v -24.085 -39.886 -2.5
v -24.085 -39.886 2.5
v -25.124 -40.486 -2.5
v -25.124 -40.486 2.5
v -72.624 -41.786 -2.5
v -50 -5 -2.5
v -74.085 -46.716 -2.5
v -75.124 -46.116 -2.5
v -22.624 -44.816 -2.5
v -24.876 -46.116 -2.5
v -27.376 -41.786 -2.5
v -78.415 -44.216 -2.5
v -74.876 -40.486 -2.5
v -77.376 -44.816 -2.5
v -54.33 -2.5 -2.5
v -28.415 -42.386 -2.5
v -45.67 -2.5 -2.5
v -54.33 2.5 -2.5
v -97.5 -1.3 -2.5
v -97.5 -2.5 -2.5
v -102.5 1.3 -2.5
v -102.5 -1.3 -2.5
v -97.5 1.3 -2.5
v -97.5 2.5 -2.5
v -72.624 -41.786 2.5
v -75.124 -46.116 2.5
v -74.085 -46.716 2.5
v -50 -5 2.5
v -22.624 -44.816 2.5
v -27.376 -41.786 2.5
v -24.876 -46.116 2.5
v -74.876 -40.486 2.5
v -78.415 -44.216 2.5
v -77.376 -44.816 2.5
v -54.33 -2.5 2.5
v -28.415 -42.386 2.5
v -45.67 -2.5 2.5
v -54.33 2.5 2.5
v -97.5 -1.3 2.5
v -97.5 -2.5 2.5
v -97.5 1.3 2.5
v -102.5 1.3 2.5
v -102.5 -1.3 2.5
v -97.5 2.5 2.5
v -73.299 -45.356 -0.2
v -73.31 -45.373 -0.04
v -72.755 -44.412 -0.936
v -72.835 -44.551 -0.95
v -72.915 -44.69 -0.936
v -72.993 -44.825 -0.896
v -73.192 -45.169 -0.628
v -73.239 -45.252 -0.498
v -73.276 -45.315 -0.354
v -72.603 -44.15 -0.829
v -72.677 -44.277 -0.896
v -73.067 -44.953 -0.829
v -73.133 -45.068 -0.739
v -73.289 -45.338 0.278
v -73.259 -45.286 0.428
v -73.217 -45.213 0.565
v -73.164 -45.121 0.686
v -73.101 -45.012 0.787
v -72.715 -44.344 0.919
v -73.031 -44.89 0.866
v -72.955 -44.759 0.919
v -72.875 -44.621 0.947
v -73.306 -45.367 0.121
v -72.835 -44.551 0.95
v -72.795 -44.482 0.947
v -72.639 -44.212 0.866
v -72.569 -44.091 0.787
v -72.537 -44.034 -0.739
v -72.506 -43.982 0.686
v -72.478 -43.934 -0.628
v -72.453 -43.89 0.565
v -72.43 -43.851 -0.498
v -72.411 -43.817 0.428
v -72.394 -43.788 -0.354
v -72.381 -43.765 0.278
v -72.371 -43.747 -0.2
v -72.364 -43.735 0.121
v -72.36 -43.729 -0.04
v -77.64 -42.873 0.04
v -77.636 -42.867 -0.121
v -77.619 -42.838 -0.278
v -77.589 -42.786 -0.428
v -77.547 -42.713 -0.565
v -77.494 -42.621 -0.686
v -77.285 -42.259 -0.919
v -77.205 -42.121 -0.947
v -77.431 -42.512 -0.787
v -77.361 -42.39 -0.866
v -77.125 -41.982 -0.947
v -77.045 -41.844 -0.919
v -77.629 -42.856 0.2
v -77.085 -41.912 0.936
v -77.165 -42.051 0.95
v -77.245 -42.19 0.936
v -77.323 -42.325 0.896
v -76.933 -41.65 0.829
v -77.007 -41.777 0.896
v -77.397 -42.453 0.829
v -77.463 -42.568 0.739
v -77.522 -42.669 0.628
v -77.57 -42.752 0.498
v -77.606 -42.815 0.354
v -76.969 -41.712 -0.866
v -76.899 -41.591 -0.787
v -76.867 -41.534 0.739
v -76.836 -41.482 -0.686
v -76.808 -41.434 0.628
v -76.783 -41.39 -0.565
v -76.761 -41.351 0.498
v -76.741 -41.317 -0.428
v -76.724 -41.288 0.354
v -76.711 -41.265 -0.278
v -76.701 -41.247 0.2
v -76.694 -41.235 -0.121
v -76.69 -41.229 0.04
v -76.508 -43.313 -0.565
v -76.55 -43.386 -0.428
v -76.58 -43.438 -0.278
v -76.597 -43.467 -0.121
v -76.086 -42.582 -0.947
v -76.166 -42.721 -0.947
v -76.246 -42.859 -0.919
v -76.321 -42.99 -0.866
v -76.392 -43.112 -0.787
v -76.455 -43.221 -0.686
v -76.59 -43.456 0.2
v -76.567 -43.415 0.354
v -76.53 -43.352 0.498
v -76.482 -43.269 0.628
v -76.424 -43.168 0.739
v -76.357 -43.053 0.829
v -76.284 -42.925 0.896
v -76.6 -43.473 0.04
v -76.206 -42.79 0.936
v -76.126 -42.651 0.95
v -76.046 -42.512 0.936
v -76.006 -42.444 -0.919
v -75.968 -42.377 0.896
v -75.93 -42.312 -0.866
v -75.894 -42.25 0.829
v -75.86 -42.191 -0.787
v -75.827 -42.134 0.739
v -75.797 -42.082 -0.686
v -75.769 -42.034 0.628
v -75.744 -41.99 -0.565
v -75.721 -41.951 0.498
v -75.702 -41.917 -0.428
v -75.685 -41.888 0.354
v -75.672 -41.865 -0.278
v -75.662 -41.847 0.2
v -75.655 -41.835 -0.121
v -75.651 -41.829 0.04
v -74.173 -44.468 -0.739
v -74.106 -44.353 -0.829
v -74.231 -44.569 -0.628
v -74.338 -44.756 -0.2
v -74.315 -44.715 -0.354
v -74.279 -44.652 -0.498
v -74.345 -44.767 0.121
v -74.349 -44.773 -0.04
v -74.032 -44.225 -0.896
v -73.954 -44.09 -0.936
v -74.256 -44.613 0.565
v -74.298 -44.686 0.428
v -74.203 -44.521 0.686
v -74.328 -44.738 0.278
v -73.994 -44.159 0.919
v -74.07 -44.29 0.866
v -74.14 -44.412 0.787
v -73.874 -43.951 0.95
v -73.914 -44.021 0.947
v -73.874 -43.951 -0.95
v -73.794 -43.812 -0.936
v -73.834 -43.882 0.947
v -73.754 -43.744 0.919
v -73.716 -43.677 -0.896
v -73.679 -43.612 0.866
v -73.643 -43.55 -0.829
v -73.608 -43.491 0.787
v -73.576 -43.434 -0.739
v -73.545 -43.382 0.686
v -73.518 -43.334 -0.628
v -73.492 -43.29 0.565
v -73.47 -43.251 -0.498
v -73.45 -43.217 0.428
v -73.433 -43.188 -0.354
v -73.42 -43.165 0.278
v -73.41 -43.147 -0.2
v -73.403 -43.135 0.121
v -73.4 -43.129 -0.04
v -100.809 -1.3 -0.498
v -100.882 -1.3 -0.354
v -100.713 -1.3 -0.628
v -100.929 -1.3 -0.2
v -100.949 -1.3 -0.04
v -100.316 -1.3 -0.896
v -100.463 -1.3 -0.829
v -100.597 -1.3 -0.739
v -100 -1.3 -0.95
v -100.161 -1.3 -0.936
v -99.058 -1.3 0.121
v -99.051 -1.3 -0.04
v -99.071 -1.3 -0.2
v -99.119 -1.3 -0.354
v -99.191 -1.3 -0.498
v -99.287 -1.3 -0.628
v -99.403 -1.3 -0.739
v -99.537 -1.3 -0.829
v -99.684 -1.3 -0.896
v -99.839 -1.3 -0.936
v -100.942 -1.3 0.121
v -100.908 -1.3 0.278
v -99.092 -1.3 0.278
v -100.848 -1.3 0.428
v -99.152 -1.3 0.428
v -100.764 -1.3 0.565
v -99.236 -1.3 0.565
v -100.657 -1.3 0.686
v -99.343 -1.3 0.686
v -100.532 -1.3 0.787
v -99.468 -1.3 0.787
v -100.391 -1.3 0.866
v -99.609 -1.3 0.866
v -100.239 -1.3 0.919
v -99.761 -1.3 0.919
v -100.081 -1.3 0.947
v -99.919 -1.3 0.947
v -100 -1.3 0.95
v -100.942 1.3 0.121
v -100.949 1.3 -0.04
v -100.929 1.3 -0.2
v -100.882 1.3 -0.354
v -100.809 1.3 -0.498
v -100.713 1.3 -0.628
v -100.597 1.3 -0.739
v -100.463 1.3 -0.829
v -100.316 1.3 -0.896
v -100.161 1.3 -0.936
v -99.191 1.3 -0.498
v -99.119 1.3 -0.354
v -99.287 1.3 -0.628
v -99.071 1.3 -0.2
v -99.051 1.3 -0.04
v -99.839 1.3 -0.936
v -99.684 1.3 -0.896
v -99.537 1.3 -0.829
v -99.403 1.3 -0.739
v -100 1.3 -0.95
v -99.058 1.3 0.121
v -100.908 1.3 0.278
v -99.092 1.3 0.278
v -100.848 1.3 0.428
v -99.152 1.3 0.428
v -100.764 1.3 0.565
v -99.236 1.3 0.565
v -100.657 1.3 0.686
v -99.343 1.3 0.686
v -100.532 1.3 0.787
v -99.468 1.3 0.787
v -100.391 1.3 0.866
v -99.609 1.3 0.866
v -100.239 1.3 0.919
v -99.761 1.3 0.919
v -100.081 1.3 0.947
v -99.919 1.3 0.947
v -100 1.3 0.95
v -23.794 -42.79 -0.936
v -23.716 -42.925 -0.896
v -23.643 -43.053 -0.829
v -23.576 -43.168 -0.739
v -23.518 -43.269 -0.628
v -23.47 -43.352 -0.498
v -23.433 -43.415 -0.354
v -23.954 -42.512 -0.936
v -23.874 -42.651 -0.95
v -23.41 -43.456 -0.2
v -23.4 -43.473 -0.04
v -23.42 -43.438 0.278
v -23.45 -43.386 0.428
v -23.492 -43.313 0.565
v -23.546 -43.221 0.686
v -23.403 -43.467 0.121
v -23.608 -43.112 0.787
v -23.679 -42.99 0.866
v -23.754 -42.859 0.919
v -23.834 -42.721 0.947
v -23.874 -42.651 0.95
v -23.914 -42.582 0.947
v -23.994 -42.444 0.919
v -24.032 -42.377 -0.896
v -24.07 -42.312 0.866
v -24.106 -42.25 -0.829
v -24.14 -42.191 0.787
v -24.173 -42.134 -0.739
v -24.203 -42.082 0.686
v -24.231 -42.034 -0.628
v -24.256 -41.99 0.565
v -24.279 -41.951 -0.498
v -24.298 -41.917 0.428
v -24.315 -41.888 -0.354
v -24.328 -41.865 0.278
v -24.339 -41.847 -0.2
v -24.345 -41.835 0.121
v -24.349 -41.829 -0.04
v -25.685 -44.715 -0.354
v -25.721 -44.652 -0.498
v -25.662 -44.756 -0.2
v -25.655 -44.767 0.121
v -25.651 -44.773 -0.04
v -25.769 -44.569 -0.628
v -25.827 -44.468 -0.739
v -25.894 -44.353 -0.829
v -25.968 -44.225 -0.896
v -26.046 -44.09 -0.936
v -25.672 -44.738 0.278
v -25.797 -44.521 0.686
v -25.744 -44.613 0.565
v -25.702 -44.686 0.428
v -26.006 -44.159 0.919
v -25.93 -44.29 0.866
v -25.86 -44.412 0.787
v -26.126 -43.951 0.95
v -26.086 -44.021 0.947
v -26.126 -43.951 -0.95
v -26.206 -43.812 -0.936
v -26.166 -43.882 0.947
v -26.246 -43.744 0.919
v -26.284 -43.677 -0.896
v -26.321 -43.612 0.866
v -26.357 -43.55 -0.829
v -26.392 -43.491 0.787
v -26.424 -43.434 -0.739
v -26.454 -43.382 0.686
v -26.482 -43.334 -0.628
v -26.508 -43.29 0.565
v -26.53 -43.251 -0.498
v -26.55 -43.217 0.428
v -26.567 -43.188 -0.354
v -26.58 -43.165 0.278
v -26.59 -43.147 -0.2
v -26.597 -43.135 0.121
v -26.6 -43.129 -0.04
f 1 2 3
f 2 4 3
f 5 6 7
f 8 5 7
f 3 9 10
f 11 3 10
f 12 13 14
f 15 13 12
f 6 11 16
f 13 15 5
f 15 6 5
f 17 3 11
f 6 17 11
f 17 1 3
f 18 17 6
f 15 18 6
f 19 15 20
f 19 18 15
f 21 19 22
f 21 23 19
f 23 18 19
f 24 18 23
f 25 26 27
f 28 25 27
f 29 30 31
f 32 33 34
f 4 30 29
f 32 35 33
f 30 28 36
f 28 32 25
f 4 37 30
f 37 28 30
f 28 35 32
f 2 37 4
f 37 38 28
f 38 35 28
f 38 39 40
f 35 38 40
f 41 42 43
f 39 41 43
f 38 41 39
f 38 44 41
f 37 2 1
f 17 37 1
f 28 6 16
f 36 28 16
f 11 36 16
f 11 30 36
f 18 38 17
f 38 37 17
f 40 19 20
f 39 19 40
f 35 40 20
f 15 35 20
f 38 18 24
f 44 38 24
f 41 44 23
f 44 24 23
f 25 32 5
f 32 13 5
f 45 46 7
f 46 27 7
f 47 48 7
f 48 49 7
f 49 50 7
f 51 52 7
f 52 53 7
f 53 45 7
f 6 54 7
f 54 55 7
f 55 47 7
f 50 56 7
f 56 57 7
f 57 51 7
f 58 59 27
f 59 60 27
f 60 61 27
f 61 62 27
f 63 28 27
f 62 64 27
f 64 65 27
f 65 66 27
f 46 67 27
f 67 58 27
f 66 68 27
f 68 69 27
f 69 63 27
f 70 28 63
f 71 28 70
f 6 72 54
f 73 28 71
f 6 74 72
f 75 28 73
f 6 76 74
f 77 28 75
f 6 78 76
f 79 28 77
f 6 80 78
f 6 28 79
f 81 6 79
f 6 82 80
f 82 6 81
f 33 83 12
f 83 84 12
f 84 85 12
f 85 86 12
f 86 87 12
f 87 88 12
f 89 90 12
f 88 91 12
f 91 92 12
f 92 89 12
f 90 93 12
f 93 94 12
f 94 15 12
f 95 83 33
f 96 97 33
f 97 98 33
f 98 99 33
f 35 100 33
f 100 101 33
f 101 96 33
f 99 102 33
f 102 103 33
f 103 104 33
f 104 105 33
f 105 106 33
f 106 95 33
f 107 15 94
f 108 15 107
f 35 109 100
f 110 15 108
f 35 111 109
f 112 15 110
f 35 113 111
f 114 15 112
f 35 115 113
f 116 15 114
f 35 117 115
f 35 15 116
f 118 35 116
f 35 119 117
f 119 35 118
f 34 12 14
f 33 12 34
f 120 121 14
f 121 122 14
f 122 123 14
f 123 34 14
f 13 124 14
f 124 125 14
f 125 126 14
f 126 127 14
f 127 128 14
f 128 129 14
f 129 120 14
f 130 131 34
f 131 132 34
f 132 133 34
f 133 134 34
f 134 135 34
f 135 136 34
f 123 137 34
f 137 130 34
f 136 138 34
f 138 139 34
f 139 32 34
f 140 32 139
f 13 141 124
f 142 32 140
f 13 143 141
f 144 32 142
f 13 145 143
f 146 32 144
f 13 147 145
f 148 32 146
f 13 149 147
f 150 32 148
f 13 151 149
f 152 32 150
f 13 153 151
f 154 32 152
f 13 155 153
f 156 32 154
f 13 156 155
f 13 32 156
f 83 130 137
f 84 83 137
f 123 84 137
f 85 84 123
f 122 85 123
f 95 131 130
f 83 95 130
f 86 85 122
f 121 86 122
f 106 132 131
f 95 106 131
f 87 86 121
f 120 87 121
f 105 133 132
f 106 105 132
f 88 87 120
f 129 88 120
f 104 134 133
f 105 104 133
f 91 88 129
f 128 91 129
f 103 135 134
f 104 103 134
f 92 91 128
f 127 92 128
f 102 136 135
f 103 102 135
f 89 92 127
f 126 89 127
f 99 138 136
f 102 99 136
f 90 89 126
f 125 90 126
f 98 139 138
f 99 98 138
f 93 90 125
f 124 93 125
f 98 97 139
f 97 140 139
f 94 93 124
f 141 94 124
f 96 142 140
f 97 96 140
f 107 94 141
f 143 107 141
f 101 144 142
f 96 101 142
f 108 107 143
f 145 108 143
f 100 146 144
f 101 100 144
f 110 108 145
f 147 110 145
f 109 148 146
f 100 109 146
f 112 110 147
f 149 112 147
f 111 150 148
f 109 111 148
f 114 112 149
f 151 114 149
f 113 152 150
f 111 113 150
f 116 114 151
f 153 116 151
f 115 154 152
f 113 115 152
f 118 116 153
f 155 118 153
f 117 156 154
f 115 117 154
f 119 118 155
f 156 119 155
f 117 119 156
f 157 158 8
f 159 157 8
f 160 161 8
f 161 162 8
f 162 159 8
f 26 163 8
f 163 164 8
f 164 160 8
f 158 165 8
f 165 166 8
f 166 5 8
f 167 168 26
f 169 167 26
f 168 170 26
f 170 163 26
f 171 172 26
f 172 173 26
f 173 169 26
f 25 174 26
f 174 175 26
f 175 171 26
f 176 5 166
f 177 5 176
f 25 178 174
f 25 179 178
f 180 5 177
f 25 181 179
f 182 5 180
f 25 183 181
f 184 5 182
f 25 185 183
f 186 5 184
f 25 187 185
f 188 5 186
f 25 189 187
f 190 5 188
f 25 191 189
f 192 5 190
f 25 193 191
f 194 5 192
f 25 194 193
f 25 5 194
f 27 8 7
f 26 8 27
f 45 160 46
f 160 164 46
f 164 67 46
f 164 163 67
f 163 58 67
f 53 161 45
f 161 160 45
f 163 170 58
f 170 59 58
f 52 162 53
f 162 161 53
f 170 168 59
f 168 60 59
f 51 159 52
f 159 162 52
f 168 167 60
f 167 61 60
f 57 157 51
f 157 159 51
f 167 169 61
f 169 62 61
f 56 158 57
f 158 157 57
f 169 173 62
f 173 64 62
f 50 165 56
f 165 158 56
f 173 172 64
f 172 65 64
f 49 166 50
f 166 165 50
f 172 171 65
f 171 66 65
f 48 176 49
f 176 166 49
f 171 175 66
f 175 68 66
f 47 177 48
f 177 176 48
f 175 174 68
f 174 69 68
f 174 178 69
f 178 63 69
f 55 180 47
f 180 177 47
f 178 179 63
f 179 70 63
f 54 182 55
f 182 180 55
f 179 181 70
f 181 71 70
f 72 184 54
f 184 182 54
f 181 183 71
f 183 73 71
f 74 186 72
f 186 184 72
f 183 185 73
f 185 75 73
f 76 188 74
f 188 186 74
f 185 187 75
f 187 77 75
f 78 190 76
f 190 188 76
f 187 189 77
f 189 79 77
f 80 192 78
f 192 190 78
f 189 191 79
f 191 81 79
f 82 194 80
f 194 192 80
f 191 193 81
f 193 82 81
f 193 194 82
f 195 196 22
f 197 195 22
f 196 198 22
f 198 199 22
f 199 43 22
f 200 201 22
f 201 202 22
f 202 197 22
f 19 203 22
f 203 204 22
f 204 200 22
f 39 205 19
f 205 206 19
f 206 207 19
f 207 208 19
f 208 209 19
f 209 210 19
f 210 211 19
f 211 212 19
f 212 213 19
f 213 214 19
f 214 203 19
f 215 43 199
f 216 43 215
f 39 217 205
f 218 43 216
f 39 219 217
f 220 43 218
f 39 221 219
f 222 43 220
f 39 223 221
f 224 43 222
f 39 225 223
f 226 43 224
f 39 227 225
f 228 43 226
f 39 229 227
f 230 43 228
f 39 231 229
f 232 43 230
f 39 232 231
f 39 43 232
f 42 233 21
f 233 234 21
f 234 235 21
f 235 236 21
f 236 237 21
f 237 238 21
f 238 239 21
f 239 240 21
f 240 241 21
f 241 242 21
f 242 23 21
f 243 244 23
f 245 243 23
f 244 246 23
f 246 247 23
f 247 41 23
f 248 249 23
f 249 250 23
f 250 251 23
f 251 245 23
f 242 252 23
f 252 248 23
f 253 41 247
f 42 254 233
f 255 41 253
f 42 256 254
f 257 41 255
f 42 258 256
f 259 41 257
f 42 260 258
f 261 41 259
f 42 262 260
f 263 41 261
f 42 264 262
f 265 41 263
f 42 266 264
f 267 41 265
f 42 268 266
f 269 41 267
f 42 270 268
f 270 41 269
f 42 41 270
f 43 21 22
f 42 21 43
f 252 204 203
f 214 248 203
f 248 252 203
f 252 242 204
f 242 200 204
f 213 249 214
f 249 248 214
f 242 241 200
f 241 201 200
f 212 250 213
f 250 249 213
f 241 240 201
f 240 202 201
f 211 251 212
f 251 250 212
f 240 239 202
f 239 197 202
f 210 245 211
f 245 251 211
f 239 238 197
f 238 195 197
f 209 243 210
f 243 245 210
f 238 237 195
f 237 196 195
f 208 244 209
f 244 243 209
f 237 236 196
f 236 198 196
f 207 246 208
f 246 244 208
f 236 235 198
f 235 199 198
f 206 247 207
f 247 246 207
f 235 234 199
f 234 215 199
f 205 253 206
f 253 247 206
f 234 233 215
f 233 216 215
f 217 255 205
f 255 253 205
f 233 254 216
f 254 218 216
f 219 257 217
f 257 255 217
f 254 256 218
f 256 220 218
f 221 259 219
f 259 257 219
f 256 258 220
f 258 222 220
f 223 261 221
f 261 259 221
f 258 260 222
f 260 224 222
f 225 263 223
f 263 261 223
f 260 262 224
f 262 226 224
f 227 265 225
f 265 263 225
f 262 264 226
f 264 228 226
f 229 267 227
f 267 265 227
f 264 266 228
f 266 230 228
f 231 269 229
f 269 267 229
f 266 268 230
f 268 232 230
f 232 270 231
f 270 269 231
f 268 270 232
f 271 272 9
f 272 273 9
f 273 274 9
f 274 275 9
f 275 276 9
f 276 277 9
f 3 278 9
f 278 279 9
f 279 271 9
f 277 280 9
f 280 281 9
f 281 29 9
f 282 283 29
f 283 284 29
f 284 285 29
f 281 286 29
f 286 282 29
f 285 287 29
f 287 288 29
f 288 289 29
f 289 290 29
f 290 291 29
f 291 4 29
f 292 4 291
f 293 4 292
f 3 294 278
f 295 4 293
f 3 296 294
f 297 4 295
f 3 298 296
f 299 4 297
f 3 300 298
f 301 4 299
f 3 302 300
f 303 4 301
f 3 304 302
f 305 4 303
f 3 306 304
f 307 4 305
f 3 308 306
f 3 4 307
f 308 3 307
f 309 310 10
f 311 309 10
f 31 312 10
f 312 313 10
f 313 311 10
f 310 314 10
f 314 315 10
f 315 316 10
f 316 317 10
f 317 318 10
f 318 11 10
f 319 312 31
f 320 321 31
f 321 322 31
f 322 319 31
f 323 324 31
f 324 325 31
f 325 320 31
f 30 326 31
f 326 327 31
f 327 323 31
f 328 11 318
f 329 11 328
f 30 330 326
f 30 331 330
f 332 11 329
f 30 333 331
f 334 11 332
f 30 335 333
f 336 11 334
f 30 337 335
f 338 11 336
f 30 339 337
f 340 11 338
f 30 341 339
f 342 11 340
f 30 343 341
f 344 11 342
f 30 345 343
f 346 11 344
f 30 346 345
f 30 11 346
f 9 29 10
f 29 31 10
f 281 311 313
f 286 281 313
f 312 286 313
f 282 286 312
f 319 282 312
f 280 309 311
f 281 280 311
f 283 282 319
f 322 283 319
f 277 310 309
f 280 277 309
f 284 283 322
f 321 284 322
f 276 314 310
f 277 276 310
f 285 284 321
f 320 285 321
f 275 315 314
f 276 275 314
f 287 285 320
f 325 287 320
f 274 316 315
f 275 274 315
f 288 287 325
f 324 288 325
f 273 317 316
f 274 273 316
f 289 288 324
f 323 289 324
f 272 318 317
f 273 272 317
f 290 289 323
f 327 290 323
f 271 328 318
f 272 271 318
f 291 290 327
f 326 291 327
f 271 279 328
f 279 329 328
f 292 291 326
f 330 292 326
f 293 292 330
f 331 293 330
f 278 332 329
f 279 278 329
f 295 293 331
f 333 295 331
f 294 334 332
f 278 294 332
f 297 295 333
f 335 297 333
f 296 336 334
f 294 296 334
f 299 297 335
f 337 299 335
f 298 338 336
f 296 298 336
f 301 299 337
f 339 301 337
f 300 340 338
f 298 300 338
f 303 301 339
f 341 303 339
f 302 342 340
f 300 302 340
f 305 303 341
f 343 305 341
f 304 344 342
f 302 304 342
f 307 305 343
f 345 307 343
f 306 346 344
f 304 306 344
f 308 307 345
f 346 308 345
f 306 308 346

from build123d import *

# Parameters (mm, degrees)
SKETCH1_W               = 5
SKETCH1_H               = 5
SKETCH1_R               = 0.95
CENTER_DEPTH            = 1.3
RIGHTSIDE_START         = 1.3
SKETCH1_2_W             = 5
SKETCH1_2_H             = 5
SKETCH1_2_R             = 0.95
RIGHTSIDE_DEPTH         = 1.2
LEFTSIDE_START          = -1.3
SKETCH1_3_W             = 5
SKETCH1_3_H             = 5
SKETCH1_3_R             = 0.95
LEFTSIDE_DEPTH          = 1.2
SKETCH3_W               = 5
SKETCH3_H               = 5
BOSS_EXTRUDE4_DEPTH     = 47.5
CUT_EXTRUDE1_DEPTH      = 5
CIRPATTERN2_COUNT       = 6
CIRPATTERN3_COUNT       = 3
CIRPATTERN4_START       = -44.601270189
CIRPATTERN4_OUTLINE_W   = 5
CIRPATTERN4_OUTLINE_H   = 5
CIRPATTERN4_OUTLINE_R   = 0.95
CIRPATTERN4_DEPTH       = 2.6
CIRPATTERN4_2_OUTLINE_W = 5
CIRPATTERN4_2_OUTLINE_H = 5
CIRPATTERN4_2_OUTLINE_R = 0.95
CIRPATTERN4_2_DEPTH     = 2.6
CIRPATTERN4_START_2     = -1.3
CIRPATTERN4_3_OUTLINE_W = 5
CIRPATTERN4_3_OUTLINE_H = 5
CIRPATTERN4_3_OUTLINE_R = 0.95
CIRPATTERN4_3_DEPTH     = 2.6
SKETCH5_W               = 5
SKETCH5_H               = 2.6
CUT_EXTRUDE2_DEPTH      = 5


# Read off the part's stored shape, not the designer's step: CirPattern4
with BuildPart() as part:
    # Sketch1 → Center (new, symmetric)
    with BuildSketch(Plane(origin=(0, 0, 0), x_dir=(1, 0, 0), z_dir=(0, 1, 0))):
        Rectangle(SKETCH1_W, SKETCH1_H)
        with Locations(Location((0, 0, 0), (0, 0, 270))):
            Circle(SKETCH1_R, mode=Mode.SUBTRACT)
    extrude(amount=CENTER_DEPTH, both=True)

    # Sketch5 → Cut-Extrude2 (cut)
    with BuildSketch(Plane(origin=(2.5, 0, 0), x_dir=(0, 0, -1), z_dir=(1, 0, 0))):
        Rectangle(SKETCH5_W, SKETCH5_H)
    extrude(amount=-CUT_EXTRUDE2_DEPTH, mode=Mode.SUBTRACT)


with BuildPart() as body_2:
    # Sketch1<2> → RightSide (new body)
    with BuildSketch(Plane(origin=(0, 0, 0), x_dir=(1, 0, 0), z_dir=(0, 1, 0)).offset(RIGHTSIDE_START)):
        Rectangle(SKETCH1_2_W, SKETCH1_2_H)
        with Locations(Location((0, 0, 0), (0, 0, 270))):
            Circle(SKETCH1_2_R, mode=Mode.SUBTRACT)
    extrude(amount=RIGHTSIDE_DEPTH)


with BuildPart() as body_3:
    # Sketch1<3> → LeftSide (new body)
    with BuildSketch(Plane(origin=(0, 0, 0), x_dir=(1, 0, 0), z_dir=(0, 1, 0)).offset(LEFTSIDE_START)):
        Rectangle(SKETCH1_3_W, SKETCH1_3_H)
        with Locations(Location((0, 0, 0), (0, 0, 270))):
            Circle(SKETCH1_3_R, mode=Mode.SUBTRACT)
    extrude(amount=-LEFTSIDE_DEPTH)


with BuildPart() as body_4:
    # Sketch3 → Boss-Extrude4 (new body)
    with BuildSketch(Plane.ZY.offset(2.5)):
        Rectangle(SKETCH3_W, SKETCH3_H)
    extrude(amount=BOSS_EXTRUDE4_DEPTH)

    # Sketch4 → Cut-Extrude1 (cut)
    with BuildSketch(Plane.XY.offset(-2.5)):
        Polygon((-50, 0), (-50, -2.5), (-45.669872981, -2.5), align=None)
        Polygon((-50, 2.5), (-50, 0), (-45.669872981, 2.5), align=None)
    extrude(amount=CUT_EXTRUDE1_DEPTH, mode=Mode.SUBTRACT)


with BuildPart() as cirpattern2_1:
    # CirPattern2: pattern copy
    add(body_4.part.rotate(Axis((-50, 0, 0), (0, 0, 1)), 1 * 360 / CIRPATTERN2_COUNT))


with BuildPart() as cirpattern2_2:
    # CirPattern2: pattern copy
    add(body_4.part.rotate(Axis((-50, 0, 0), (0, 0, 1)), 2 * 360 / CIRPATTERN2_COUNT))


with BuildPart() as cirpattern2_3:
    # CirPattern2: pattern copy
    add(body_4.part.rotate(Axis((-50, 0, 0), (0, 0, 1)), 3 * 360 / CIRPATTERN2_COUNT))


with BuildPart() as cirpattern2_4:
    # CirPattern2: pattern copy
    add(body_4.part.rotate(Axis((-50, 0, 0), (0, 0, 1)), 4 * 360 / CIRPATTERN2_COUNT))


with BuildPart() as cirpattern2_5:
    # CirPattern2: pattern copy
    add(body_4.part.rotate(Axis((-50, 0, 0), (0, 0, 1)), 5 * 360 / CIRPATTERN2_COUNT))


with BuildPart() as cirpattern3_1:
    # CirPattern3: pattern copy
    add(body_3.part.rotate(Axis((-50, 0, 0), (0, 0, 1)), 1 * 360 / CIRPATTERN3_COUNT))


with BuildPart() as cirpattern3_2:
    # CirPattern3: pattern copy
    add(body_3.part.rotate(Axis((-50, 0, 0), (0, 0, 1)), 2 * 360 / CIRPATTERN3_COUNT))


with BuildPart() as cirpattern3_3:
    # CirPattern3: pattern copy
    add(body_2.part.rotate(Axis((-50, 0, 0), (0, 0, 1)), 1 * 360 / CIRPATTERN3_COUNT))


with BuildPart() as cirpattern3_4:
    # CirPattern3: pattern copy
    add(body_2.part.rotate(Axis((-50, 0, 0), (0, 0, 1)), 2 * 360 / CIRPATTERN3_COUNT))


with BuildPart() as body_14:
    # CirPattern4 outline → CirPattern4 (new body)
    with BuildSketch(Plane(origin=(0, 0, 0), x_dir=(0.49999999999999767, 0.86602540378444, 0), z_dir=(0.8660254037844399, -0.49999999999999795, 0)).offset(CIRPATTERN4_START)):
        with Locations((25, 0)):
            Rectangle(CIRPATTERN4_OUTLINE_W, CIRPATTERN4_OUTLINE_H)
        with Locations((25, 0)):
            Circle(CIRPATTERN4_OUTLINE_R, mode=Mode.SUBTRACT)
    extrude(amount=CIRPATTERN4_DEPTH)


with BuildPart() as body_15:
    # CirPattern4 2 outline → CirPattern4 2 (new body)
    with BuildSketch(Plane(origin=(0, 0, 0), x_dir=(0.5000000000000098, -0.8660254037844329, 0), z_dir=(0.8660254037844329, 0.50000000000001, 0)).offset(CIRPATTERN4_START)):
        with Locations((25, 0)):
            Rectangle(CIRPATTERN4_2_OUTLINE_W, CIRPATTERN4_2_OUTLINE_H)
        with Locations((25, 0)):
            Circle(CIRPATTERN4_2_OUTLINE_R, mode=Mode.SUBTRACT)
    extrude(amount=CIRPATTERN4_2_DEPTH)


with BuildPart() as body_16:
    # CirPattern4 3 outline → CirPattern4 3 (new body)
    with BuildSketch(Plane(origin=(0, 0, 0), x_dir=(1, 0, 0), z_dir=(0, 1, 0)).offset(CIRPATTERN4_START_2)):
        with Locations((-100, 0)):
            Rectangle(CIRPATTERN4_3_OUTLINE_W, CIRPATTERN4_3_OUTLINE_H)
        with Locations((-100, 0)):
            Circle(CIRPATTERN4_3_OUTLINE_R, mode=Mode.SUBTRACT)
    extrude(amount=CIRPATTERN4_3_DEPTH)


with BuildPart() as cirpattern2_5_1:
    add(cirpattern2_5.part)

    # Combine1: union CirPattern2_3, CirPattern2_4, body 16, CirPattern3_2, CirPattern3_4, body 15
    add(cirpattern2_3.part)
    add(cirpattern2_4.part)
    add(body_16.part)
    add(cirpattern3_2.part)
    add(cirpattern3_4.part)
    add(body_15.part)

    # Combine3: cut CirPattern3_3, body 14, CirPattern2_1, body 4, body 2, CirPattern2_2, body 3, CirPattern3_1
    add(cirpattern3_3.part, mode=Mode.SUBTRACT)
    add(body_14.part, mode=Mode.SUBTRACT)
    add(cirpattern2_1.part, mode=Mode.SUBTRACT)
    add(body_4.part, mode=Mode.SUBTRACT)
    add(body_2.part, mode=Mode.SUBTRACT)
    add(cirpattern2_2.part, mode=Mode.SUBTRACT)
    add(body_3.part, mode=Mode.SUBTRACT)
    add(cirpattern3_1.part, mode=Mode.SUBTRACT)


solid = cirpattern2_5_1.part
